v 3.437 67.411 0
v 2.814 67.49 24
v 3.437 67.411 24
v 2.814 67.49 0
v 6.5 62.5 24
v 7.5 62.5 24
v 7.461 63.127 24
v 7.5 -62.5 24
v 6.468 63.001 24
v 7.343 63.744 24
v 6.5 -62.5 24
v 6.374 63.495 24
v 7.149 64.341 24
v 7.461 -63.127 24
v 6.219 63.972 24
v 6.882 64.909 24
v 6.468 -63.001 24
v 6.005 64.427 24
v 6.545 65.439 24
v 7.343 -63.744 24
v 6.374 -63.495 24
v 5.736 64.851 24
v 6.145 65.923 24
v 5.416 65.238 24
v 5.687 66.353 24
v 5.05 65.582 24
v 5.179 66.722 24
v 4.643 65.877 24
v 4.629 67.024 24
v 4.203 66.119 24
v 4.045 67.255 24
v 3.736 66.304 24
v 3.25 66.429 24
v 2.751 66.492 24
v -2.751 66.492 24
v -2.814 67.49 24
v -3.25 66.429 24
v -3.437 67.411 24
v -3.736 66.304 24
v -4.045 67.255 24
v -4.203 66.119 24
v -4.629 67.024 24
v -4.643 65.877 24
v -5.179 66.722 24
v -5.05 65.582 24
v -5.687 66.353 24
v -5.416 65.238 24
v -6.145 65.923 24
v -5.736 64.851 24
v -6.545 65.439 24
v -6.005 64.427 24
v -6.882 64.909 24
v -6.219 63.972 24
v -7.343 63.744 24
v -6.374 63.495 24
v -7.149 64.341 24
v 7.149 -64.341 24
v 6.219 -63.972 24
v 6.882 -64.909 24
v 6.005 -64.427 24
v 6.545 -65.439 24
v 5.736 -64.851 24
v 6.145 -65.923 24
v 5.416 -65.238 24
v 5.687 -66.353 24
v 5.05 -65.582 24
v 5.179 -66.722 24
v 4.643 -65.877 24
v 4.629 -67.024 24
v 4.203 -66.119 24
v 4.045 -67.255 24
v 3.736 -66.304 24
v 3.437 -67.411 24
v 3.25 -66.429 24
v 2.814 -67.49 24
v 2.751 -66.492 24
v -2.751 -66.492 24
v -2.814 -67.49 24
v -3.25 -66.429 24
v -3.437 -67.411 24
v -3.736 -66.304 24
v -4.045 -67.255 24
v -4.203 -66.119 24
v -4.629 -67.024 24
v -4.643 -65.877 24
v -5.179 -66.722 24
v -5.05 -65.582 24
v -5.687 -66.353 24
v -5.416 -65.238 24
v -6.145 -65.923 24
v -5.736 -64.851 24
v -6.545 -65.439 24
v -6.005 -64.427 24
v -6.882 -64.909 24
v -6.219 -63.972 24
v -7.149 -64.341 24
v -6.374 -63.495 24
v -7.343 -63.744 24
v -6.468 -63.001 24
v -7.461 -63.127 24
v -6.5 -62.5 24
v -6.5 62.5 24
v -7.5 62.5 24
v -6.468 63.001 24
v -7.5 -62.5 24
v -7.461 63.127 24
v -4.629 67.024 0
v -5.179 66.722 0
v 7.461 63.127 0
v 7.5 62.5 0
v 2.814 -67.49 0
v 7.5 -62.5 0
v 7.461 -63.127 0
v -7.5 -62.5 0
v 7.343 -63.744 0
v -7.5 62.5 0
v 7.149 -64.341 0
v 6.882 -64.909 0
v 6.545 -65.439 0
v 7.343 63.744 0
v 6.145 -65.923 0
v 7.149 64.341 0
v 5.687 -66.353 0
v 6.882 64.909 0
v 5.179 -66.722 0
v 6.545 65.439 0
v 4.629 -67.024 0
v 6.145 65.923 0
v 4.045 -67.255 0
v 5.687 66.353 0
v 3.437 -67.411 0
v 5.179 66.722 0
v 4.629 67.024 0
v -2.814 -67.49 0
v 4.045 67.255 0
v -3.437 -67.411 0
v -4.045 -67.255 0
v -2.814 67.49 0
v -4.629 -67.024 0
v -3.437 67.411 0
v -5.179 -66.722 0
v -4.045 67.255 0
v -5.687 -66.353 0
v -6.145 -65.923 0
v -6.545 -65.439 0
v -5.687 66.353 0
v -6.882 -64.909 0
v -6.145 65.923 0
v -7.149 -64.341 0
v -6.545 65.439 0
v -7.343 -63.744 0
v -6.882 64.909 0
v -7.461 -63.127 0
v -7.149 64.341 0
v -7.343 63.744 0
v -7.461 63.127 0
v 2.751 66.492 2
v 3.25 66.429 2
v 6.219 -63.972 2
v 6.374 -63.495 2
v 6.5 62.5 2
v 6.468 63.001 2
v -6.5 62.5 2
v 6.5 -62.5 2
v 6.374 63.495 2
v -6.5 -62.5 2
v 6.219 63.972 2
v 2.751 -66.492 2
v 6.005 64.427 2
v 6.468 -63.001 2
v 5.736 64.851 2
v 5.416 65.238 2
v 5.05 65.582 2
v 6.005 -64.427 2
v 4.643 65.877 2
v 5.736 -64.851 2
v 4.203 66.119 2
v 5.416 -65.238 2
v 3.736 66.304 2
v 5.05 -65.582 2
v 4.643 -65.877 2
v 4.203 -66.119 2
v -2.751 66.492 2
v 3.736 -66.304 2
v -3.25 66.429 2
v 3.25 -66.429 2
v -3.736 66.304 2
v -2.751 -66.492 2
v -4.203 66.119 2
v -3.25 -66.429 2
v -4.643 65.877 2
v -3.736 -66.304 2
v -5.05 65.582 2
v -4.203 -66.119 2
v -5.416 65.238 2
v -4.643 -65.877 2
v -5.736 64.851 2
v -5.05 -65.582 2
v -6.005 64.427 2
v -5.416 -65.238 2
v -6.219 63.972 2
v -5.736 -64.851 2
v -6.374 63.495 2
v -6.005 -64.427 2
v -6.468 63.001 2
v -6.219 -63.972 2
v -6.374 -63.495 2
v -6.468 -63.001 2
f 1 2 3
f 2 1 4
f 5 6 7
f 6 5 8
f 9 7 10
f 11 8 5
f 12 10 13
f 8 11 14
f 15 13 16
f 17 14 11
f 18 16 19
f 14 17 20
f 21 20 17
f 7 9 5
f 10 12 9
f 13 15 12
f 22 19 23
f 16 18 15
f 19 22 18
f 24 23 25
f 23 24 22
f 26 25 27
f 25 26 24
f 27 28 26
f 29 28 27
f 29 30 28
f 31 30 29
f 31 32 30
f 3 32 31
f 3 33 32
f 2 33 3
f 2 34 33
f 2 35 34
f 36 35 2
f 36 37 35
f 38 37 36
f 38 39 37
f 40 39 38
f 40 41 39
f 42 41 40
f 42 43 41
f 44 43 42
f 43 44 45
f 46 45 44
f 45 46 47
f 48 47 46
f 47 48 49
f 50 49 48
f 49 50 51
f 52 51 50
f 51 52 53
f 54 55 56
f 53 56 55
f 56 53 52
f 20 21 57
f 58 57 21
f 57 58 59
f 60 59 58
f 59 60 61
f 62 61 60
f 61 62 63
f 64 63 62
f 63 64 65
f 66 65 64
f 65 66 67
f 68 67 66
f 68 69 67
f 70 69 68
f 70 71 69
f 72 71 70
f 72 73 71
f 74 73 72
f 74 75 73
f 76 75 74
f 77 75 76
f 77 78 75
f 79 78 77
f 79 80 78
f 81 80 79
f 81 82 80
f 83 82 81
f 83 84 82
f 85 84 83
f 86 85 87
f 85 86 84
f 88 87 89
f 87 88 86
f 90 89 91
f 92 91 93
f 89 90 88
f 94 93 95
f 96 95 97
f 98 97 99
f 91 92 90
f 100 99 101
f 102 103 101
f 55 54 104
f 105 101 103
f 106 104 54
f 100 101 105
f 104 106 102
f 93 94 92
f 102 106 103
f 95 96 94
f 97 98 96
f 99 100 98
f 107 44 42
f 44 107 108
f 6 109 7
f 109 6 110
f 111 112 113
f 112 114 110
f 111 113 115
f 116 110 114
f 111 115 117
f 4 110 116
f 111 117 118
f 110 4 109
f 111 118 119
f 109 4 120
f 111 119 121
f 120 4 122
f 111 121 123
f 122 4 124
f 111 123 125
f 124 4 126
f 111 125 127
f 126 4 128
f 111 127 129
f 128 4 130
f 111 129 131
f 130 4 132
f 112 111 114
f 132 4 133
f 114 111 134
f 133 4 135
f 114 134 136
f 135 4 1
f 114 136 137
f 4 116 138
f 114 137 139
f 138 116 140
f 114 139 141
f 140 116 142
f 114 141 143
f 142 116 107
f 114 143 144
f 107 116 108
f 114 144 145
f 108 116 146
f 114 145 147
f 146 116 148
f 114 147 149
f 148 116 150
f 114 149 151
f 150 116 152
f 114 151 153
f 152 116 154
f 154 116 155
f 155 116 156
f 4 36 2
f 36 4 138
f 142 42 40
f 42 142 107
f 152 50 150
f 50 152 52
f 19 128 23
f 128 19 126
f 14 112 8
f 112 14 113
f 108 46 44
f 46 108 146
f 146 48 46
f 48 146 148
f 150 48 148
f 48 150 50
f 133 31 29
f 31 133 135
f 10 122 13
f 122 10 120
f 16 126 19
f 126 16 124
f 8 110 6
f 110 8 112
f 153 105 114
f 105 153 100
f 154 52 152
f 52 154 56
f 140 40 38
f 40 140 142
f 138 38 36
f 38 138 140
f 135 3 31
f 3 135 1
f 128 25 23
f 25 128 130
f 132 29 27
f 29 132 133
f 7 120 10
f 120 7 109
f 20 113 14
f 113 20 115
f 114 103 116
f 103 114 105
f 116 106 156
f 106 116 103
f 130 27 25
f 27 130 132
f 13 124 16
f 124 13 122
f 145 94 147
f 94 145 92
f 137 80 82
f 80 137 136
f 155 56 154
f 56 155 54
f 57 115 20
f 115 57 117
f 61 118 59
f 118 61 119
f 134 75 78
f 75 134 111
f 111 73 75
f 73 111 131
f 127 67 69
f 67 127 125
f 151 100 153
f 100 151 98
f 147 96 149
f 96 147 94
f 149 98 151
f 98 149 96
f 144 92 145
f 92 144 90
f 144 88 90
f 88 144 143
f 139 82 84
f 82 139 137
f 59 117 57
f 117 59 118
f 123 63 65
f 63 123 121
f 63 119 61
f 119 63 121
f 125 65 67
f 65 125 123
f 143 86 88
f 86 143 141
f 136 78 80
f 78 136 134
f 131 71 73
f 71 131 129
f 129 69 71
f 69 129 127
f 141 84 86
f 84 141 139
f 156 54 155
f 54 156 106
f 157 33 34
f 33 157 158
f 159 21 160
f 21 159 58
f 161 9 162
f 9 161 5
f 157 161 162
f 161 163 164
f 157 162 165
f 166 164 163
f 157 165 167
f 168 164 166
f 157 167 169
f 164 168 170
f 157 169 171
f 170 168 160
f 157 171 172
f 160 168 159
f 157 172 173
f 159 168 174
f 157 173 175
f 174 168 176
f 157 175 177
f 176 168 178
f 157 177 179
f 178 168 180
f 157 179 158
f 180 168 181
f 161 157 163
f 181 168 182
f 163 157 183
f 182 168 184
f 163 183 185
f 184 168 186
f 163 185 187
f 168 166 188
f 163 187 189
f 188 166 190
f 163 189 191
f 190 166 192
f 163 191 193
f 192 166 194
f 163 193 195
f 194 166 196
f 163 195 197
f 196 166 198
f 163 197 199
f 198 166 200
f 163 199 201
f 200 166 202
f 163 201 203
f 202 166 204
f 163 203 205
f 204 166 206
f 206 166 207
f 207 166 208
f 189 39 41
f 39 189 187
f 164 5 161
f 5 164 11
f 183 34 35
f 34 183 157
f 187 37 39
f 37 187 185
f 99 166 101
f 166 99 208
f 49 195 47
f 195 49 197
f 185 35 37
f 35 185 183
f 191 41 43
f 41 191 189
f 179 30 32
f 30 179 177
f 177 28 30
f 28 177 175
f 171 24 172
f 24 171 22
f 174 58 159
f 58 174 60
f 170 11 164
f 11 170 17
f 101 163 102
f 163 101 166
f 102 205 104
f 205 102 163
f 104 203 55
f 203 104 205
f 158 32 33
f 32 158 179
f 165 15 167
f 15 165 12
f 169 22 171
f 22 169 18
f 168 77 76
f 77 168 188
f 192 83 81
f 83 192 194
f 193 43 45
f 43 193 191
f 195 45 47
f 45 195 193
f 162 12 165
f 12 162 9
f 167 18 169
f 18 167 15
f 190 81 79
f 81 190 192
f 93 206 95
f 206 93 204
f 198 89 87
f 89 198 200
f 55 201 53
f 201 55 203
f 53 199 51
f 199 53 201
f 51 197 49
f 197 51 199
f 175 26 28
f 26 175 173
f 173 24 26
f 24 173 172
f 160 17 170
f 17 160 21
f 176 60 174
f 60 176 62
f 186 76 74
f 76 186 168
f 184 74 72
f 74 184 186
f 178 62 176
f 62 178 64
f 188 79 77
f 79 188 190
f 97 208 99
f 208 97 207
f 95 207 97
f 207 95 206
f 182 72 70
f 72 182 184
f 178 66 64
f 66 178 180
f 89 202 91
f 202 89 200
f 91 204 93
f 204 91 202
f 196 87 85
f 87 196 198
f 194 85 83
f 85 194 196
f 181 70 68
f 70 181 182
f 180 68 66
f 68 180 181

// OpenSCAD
$fn = 50;


difference() {
	union() {
		hull() {
			translate(v = [-2.5000000000, 62.5000000000, 0]) {
				cylinder(h = 24, r = 5);
			}
			translate(v = [2.5000000000, 62.5000000000, 0]) {
				cylinder(h = 24, r = 5);
			}
			translate(v = [-2.5000000000, -62.5000000000, 0]) {
				cylinder(h = 24, r = 5);
			}
			translate(v = [2.5000000000, -62.5000000000, 0]) {
				cylinder(h = 24, r = 5);
			}
		}
	}
	union() {
		translate(v = [0, 0, 2]) {
			hull() {
				translate(v = [-2.5000000000, 62.5000000000, 0]) {
					cylinder(h = 22, r = 4);
				}
				translate(v = [2.5000000000, 62.5000000000, 0]) {
					cylinder(h = 22, r = 4);
				}
				translate(v = [-2.5000000000, -62.5000000000, 0]) {
					cylinder(h = 22, r = 4);
				}
				translate(v = [2.5000000000, -62.5000000000, 0]) {
					cylinder(h = 22, r = 4);
				}
			}
		}
	}
}
